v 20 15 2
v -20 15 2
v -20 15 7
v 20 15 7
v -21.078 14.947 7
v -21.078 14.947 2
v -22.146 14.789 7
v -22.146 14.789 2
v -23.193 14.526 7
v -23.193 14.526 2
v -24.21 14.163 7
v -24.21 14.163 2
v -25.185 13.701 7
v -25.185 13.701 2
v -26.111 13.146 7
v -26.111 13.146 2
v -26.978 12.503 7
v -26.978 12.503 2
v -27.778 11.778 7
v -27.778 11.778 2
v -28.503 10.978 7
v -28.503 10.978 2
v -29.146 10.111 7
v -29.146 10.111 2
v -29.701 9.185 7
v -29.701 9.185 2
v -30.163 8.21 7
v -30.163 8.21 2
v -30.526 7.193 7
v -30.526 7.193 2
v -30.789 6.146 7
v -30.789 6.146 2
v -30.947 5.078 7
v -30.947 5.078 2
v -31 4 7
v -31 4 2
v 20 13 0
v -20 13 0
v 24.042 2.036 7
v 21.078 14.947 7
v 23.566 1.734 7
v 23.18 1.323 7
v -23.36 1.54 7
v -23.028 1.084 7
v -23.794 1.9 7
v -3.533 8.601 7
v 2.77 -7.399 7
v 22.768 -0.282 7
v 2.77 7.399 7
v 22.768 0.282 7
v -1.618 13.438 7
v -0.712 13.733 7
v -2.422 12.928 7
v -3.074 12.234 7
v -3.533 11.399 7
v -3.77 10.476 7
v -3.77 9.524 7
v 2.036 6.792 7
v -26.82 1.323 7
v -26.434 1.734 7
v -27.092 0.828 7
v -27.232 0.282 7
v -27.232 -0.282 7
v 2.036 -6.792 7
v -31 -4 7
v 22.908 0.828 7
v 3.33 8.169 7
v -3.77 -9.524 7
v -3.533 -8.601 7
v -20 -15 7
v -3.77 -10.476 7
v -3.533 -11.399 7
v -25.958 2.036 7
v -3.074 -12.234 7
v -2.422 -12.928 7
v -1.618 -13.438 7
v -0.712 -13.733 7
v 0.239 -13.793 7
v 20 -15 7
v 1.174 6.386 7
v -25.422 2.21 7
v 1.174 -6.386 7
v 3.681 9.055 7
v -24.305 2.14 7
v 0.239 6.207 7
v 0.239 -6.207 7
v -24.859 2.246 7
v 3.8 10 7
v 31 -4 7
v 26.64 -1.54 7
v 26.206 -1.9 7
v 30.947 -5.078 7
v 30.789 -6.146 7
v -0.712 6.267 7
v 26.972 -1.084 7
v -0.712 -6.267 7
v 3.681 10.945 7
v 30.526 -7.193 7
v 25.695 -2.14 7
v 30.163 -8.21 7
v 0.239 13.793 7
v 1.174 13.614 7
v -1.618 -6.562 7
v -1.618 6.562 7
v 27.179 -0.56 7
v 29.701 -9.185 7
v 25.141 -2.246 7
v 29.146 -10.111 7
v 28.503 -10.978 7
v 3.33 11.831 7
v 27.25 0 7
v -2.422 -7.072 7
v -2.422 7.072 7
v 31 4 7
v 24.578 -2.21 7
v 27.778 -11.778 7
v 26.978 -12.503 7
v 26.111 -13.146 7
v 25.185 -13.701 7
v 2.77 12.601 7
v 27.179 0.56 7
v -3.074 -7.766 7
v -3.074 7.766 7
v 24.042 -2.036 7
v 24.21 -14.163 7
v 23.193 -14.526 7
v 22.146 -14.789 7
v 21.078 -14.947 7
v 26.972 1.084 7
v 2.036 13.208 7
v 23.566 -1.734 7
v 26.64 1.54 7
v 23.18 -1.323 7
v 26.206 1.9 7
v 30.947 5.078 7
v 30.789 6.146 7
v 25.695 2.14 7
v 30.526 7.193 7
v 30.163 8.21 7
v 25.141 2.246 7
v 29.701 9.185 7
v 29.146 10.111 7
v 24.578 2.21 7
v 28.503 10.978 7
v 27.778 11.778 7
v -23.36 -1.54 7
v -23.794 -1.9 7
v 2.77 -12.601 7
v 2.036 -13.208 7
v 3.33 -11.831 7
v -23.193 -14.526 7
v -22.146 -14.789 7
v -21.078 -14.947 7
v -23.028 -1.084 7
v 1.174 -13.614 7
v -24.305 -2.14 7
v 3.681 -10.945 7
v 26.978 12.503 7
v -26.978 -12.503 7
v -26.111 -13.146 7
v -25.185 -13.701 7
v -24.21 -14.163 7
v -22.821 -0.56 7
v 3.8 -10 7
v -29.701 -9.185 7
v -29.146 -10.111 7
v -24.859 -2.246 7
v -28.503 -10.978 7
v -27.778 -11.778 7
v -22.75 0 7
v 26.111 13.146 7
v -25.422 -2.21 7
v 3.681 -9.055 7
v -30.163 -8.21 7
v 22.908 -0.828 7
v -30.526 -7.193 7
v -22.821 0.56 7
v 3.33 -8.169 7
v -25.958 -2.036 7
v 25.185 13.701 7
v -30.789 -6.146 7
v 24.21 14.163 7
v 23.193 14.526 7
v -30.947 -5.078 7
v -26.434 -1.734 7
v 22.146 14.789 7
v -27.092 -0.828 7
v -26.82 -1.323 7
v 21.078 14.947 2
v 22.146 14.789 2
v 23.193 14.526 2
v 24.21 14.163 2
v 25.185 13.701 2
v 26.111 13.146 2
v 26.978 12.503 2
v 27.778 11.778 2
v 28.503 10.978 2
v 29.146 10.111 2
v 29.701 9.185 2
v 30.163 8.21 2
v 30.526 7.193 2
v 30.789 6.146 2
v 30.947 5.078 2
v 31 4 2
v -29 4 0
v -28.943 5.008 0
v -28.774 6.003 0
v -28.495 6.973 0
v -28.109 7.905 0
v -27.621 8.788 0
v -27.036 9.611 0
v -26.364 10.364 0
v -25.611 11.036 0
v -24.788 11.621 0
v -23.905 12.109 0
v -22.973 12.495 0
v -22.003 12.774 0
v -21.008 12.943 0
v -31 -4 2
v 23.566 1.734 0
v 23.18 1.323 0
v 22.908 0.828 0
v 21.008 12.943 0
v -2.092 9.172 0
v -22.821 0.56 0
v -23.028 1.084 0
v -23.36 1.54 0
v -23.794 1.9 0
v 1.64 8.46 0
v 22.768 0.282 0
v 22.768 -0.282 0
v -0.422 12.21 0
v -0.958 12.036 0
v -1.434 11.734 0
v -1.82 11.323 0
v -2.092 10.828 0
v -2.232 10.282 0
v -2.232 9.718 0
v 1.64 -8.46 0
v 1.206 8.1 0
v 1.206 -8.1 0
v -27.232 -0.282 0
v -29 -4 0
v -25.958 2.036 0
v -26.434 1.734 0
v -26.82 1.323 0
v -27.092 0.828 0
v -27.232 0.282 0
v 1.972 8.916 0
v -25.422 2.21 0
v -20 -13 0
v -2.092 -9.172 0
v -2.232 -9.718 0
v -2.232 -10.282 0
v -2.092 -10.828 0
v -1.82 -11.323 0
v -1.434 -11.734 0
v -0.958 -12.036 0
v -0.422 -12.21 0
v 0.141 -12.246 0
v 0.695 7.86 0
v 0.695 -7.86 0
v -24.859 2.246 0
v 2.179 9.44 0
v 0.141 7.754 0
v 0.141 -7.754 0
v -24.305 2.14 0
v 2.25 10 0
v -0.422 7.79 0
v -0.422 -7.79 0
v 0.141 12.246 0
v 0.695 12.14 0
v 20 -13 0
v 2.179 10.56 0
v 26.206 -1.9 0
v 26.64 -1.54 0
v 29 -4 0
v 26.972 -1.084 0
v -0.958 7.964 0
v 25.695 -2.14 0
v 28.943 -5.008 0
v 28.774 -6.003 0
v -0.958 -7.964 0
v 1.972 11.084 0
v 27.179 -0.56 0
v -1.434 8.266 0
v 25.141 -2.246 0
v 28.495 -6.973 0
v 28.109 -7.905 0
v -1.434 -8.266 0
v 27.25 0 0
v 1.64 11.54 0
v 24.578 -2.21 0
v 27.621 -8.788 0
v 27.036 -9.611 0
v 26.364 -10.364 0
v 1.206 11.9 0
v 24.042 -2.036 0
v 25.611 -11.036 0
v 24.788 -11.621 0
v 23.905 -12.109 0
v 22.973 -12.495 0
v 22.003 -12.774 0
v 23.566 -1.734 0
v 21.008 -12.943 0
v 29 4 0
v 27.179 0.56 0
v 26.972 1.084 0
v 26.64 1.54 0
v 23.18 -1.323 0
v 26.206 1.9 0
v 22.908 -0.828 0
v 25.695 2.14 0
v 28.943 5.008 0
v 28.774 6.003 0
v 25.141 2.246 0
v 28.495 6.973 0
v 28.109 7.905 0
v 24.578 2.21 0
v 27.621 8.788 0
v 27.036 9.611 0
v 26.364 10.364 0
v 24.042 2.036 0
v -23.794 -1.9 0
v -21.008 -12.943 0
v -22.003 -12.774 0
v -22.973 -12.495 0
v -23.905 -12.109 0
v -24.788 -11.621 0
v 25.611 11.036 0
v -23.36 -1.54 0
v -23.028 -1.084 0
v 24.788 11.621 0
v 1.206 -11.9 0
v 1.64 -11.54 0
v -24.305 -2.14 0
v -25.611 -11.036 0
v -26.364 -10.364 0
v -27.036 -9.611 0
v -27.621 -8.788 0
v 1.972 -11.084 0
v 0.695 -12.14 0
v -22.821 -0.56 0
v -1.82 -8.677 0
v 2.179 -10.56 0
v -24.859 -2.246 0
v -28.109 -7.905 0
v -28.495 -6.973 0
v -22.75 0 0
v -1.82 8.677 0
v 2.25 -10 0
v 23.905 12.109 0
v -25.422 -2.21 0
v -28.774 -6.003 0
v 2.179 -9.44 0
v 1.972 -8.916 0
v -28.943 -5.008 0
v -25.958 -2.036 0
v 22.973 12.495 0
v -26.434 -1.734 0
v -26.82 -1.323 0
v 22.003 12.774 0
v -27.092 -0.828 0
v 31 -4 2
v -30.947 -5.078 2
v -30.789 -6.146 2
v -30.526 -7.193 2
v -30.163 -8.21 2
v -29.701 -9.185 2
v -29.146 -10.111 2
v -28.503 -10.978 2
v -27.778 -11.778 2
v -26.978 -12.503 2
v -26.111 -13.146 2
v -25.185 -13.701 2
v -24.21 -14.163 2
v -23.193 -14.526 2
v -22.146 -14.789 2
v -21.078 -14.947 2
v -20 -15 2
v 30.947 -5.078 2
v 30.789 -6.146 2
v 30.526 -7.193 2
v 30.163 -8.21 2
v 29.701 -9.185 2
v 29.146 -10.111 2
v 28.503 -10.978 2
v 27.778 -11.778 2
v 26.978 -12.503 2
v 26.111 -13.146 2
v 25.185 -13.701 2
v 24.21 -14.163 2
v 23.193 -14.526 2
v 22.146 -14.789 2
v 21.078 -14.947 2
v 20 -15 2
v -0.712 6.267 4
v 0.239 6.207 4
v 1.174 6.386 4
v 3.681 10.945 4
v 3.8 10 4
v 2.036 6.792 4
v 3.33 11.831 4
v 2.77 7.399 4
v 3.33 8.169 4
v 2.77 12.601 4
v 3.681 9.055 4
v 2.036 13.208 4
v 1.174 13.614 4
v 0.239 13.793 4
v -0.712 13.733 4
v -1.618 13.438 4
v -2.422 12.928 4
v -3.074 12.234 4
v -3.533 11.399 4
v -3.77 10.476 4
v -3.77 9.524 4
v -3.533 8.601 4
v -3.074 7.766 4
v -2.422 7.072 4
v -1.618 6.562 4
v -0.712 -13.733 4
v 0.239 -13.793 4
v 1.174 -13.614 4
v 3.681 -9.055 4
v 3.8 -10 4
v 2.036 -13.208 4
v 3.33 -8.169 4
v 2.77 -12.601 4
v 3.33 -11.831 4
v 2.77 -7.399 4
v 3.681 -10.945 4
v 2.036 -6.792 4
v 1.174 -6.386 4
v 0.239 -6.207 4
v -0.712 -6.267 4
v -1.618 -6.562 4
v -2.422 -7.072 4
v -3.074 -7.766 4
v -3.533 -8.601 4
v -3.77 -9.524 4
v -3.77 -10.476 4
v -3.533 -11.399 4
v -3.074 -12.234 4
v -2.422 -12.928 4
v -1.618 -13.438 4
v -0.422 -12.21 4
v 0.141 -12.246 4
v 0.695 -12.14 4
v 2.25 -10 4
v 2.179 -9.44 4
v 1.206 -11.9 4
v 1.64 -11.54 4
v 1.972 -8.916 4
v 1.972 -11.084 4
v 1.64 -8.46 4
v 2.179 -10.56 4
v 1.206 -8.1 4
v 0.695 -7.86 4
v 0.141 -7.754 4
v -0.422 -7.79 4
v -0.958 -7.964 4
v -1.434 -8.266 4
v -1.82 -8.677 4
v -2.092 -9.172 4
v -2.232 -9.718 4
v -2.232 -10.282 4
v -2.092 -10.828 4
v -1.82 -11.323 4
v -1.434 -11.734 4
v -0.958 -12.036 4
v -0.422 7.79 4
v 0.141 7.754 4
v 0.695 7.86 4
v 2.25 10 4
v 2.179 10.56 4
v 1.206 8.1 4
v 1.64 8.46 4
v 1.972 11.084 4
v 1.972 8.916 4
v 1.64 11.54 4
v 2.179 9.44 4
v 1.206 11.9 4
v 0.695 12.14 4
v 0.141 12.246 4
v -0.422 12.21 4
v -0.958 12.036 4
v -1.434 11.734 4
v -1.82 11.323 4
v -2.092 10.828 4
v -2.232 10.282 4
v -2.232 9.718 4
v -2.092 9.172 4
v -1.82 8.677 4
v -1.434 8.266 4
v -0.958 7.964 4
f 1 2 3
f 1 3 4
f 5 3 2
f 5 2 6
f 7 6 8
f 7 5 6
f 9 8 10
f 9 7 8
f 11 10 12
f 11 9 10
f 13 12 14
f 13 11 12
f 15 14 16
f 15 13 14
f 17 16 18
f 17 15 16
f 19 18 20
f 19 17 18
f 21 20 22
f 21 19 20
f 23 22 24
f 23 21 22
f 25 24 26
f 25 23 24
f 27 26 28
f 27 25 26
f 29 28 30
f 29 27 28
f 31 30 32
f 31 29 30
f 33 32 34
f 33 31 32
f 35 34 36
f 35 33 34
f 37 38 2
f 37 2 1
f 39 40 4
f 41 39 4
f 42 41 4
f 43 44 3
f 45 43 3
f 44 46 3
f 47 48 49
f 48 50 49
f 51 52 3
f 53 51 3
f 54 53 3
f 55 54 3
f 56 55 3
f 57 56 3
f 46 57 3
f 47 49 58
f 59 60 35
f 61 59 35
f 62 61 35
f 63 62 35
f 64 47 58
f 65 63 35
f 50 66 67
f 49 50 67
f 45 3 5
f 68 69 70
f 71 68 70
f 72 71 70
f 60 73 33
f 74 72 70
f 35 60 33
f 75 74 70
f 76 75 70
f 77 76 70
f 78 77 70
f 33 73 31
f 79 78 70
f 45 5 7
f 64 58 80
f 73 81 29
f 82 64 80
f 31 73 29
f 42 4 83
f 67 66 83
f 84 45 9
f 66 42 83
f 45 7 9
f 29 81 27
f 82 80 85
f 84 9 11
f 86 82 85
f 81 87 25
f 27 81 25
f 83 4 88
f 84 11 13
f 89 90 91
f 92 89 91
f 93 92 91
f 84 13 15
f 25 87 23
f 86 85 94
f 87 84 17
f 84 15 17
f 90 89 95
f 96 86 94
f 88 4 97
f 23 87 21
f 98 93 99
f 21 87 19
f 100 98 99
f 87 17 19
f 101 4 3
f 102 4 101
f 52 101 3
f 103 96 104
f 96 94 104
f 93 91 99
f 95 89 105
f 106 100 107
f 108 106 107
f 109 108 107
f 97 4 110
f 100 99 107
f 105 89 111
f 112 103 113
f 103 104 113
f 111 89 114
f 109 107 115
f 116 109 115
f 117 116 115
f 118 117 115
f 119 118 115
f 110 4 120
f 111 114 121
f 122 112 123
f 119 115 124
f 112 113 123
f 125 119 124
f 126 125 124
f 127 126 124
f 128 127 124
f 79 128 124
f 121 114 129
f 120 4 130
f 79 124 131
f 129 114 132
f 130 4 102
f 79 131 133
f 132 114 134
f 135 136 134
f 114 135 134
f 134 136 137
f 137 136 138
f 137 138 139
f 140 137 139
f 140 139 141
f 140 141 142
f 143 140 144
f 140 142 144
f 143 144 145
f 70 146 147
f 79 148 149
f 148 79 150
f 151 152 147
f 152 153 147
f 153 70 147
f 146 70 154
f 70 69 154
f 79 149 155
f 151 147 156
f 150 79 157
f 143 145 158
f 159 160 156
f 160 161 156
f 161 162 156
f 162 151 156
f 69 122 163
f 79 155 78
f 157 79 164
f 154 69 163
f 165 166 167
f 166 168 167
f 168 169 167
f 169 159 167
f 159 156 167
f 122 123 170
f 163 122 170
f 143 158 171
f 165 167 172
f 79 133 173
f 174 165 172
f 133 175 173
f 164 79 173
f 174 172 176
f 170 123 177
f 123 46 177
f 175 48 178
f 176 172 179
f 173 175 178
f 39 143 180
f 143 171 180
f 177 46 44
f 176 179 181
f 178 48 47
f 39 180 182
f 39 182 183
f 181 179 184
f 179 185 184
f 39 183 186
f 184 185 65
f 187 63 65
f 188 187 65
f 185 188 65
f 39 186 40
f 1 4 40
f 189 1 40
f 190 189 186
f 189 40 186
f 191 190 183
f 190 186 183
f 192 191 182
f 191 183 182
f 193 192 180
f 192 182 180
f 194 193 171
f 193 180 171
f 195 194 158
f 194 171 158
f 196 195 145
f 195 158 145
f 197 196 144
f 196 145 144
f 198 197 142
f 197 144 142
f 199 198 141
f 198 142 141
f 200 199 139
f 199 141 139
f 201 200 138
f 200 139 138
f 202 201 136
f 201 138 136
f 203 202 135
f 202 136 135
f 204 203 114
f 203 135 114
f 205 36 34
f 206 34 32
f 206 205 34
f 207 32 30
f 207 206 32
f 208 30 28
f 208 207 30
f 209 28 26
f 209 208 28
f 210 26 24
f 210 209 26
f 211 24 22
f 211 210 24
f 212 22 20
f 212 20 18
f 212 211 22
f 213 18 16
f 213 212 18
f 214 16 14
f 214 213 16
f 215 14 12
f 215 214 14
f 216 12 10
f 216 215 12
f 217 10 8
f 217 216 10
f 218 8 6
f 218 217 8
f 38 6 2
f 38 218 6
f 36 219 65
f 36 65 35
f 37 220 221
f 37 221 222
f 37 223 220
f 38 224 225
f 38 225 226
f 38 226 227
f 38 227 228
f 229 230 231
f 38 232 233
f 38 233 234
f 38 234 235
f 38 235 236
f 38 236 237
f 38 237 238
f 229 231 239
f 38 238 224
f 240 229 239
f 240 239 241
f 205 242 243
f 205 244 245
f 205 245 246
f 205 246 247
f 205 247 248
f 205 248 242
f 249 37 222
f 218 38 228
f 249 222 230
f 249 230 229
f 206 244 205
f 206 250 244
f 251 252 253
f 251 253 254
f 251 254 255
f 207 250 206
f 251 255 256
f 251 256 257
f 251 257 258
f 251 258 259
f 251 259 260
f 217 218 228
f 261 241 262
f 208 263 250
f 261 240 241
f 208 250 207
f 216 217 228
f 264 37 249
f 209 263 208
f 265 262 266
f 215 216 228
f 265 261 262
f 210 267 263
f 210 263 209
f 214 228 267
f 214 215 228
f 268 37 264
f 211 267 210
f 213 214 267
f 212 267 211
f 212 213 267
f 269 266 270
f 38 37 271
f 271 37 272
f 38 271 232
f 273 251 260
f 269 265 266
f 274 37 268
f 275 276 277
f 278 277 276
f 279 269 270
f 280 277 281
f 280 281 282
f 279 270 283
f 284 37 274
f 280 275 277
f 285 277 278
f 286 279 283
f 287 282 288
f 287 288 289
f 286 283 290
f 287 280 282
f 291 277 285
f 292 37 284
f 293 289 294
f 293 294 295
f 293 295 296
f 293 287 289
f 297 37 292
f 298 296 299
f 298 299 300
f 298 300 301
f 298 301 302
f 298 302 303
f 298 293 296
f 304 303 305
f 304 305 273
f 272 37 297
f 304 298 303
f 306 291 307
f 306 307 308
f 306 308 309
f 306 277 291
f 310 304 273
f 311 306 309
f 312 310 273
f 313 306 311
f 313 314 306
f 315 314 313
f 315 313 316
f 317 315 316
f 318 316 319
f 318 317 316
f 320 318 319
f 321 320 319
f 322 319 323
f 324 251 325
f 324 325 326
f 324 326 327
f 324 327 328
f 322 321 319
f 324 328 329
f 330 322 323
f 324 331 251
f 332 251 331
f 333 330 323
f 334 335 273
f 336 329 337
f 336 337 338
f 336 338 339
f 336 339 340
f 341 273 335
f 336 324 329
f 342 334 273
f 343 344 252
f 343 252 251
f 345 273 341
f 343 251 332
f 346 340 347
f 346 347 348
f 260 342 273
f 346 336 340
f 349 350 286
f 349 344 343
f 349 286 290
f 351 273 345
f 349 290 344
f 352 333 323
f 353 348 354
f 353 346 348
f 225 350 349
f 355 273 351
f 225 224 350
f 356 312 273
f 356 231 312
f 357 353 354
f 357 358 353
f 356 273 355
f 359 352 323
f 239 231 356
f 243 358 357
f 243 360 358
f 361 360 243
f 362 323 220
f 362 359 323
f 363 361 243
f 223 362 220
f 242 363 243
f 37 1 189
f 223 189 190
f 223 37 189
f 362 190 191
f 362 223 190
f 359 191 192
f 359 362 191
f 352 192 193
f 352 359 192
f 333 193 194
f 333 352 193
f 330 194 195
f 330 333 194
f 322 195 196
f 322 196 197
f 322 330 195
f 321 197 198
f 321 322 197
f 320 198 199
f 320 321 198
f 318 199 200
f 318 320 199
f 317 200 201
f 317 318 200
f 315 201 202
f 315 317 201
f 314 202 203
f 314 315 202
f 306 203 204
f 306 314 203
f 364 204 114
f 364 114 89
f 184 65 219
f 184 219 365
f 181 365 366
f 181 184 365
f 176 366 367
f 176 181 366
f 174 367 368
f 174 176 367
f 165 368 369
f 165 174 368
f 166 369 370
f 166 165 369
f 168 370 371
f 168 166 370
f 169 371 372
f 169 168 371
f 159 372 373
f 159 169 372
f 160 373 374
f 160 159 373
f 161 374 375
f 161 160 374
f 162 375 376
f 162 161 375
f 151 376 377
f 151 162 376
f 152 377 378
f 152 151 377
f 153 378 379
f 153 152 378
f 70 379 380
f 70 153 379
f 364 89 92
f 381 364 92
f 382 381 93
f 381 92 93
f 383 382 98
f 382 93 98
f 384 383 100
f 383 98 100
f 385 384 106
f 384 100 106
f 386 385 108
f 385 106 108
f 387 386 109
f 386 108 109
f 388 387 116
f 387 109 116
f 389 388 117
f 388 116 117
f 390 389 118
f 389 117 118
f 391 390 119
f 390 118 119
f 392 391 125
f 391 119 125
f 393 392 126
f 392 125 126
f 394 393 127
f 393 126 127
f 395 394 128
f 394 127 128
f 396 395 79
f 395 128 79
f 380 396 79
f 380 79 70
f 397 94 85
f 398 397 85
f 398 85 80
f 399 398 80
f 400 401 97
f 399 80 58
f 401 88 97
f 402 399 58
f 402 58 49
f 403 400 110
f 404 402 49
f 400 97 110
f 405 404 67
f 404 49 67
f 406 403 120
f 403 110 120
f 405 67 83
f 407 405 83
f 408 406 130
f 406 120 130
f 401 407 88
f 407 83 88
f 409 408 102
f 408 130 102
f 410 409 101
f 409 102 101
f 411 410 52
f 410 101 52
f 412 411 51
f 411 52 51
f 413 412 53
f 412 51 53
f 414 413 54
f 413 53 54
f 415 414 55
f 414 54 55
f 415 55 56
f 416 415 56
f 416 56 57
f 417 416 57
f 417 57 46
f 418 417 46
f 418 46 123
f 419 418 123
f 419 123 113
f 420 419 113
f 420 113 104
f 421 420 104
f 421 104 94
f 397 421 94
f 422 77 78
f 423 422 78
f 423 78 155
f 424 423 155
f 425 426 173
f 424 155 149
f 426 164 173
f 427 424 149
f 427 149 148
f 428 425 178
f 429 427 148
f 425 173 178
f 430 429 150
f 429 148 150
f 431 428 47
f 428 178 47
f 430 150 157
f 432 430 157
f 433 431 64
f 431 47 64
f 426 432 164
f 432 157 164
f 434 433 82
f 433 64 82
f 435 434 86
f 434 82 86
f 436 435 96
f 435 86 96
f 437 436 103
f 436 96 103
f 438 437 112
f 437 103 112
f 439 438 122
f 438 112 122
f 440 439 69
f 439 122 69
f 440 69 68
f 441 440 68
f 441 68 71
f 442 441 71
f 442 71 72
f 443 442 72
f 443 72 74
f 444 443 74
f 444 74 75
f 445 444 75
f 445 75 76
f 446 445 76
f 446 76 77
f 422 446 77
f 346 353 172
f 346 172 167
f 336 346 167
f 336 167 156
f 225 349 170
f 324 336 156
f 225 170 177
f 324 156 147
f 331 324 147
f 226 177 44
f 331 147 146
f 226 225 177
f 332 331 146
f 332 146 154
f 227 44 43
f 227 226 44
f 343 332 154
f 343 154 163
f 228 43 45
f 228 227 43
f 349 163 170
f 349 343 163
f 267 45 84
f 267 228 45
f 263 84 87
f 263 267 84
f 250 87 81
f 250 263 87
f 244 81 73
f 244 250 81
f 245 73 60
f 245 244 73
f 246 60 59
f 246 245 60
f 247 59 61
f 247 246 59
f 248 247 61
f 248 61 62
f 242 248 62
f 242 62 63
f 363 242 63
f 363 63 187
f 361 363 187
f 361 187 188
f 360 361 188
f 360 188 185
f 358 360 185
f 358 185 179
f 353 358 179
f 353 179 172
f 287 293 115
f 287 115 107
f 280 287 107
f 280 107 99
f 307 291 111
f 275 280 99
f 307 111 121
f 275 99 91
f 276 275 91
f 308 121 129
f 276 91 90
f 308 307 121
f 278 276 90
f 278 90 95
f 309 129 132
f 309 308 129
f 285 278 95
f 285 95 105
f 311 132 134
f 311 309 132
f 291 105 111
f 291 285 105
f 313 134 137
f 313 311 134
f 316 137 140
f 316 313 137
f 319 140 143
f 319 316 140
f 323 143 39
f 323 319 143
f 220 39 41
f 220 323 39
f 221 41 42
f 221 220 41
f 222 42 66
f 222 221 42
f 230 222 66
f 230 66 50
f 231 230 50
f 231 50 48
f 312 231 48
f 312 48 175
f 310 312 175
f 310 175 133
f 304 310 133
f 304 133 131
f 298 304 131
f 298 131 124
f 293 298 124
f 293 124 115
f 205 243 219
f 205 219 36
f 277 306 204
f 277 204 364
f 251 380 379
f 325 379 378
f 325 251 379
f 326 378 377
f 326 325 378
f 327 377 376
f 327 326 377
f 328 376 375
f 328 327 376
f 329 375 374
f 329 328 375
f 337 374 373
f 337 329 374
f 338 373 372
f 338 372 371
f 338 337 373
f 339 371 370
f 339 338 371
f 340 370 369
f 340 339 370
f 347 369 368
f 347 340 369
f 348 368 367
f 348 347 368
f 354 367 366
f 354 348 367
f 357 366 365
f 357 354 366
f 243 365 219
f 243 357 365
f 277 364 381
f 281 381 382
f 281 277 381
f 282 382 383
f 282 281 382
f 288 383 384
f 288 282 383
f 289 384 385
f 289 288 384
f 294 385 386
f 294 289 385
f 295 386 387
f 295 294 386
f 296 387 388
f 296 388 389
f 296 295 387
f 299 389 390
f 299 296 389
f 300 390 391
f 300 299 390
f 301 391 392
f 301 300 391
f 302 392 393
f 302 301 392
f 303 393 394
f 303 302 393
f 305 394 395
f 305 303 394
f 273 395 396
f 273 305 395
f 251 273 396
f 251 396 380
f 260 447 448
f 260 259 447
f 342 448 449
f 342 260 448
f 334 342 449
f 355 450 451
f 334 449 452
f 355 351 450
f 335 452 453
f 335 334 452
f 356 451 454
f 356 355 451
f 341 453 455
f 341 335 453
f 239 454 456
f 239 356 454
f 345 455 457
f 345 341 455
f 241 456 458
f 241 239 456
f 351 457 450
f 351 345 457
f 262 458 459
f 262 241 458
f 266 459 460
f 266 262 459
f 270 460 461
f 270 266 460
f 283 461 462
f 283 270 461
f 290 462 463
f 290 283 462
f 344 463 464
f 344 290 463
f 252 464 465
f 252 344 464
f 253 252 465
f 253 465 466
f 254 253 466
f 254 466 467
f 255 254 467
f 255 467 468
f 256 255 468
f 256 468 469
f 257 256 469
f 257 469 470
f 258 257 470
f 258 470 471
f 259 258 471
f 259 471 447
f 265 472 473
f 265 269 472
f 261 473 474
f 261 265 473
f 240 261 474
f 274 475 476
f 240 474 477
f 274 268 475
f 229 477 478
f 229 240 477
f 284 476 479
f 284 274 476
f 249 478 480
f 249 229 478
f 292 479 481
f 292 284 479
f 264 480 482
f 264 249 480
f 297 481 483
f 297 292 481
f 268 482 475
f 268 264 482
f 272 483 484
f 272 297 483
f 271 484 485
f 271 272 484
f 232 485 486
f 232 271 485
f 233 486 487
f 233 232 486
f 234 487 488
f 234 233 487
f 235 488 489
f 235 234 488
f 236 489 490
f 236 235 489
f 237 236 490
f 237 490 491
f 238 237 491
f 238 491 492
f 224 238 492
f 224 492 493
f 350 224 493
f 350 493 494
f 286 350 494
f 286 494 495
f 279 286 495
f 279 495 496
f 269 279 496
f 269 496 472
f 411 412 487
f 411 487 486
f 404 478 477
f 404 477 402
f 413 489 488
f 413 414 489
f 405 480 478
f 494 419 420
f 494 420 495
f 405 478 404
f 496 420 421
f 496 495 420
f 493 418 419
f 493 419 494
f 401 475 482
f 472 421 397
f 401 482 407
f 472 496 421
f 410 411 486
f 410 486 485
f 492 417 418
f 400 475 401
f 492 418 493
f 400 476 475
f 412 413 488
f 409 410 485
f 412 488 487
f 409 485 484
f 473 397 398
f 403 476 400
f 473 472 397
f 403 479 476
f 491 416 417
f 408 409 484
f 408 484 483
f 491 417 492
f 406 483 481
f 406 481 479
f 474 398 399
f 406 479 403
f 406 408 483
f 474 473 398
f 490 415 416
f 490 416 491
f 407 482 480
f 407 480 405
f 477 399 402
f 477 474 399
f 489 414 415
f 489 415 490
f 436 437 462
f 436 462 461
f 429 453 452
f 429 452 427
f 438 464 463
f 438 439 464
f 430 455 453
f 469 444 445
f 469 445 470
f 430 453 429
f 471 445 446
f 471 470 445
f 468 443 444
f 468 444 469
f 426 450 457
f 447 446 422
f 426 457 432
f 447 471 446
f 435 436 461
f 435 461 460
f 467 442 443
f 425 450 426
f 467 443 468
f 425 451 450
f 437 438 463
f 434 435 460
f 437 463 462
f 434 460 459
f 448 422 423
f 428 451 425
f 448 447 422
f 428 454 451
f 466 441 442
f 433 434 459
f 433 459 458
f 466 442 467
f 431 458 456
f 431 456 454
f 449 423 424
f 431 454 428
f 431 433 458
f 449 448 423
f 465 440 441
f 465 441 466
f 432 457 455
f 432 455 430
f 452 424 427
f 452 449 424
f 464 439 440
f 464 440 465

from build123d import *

# Parameters (mm, degrees)
SKETCH_W     = 62
SKETCH_H     = 30
SKETCH_R     = 2.25
PAD_DEPTH    = 7
SKETCH001_R  = 3.8
POCKET_DEPTH = 3
FILLET_R     = 11
CHAMFER_SIZE = 2


with BuildPart() as part:
    # Sketch → Pad (new body)
    with BuildSketch(Plane.XY):
        Rectangle(SKETCH_W, SKETCH_H)
        with Locations((-25, 0)):
            Circle(SKETCH_R, mode=Mode.SUBTRACT)
        with Locations((25, 0)):
            Circle(SKETCH_R, mode=Mode.SUBTRACT)
        with Locations((0, 10)):
            Circle(SKETCH_R, mode=Mode.SUBTRACT)
        with Locations((0, -10)):
            Circle(SKETCH_R, mode=Mode.SUBTRACT)
    extrude(amount=PAD_DEPTH)

    # Sketch001 → Pocket (cut)
    with BuildSketch(Plane.XY.offset(7)):
        with Locations((0, 10)):
            Circle(SKETCH001_R)
        with Locations((0, -10)):
            Circle(SKETCH001_R)
    extrude(amount=-POCKET_DEPTH, mode=Mode.SUBTRACT)

    # Fillet
    fillet_edges = [part.edges().sort_by_distance(p)[0] for p in [
        (31, 15, 3.5),
        (-31, 15, 3.5),
        (-31, -15, 3.5),
        (31, -15, 3.5),
    ]]
    fillet(fillet_edges, radius=FILLET_R)

    # Chamfer
    chamfer_edges = [part.edges().sort_by_distance(p)[0] for p in [
        (0, 15, 0),
    ]]
    chamfer(chamfer_edges, length=CHAMFER_SIZE)


solid = part.part
